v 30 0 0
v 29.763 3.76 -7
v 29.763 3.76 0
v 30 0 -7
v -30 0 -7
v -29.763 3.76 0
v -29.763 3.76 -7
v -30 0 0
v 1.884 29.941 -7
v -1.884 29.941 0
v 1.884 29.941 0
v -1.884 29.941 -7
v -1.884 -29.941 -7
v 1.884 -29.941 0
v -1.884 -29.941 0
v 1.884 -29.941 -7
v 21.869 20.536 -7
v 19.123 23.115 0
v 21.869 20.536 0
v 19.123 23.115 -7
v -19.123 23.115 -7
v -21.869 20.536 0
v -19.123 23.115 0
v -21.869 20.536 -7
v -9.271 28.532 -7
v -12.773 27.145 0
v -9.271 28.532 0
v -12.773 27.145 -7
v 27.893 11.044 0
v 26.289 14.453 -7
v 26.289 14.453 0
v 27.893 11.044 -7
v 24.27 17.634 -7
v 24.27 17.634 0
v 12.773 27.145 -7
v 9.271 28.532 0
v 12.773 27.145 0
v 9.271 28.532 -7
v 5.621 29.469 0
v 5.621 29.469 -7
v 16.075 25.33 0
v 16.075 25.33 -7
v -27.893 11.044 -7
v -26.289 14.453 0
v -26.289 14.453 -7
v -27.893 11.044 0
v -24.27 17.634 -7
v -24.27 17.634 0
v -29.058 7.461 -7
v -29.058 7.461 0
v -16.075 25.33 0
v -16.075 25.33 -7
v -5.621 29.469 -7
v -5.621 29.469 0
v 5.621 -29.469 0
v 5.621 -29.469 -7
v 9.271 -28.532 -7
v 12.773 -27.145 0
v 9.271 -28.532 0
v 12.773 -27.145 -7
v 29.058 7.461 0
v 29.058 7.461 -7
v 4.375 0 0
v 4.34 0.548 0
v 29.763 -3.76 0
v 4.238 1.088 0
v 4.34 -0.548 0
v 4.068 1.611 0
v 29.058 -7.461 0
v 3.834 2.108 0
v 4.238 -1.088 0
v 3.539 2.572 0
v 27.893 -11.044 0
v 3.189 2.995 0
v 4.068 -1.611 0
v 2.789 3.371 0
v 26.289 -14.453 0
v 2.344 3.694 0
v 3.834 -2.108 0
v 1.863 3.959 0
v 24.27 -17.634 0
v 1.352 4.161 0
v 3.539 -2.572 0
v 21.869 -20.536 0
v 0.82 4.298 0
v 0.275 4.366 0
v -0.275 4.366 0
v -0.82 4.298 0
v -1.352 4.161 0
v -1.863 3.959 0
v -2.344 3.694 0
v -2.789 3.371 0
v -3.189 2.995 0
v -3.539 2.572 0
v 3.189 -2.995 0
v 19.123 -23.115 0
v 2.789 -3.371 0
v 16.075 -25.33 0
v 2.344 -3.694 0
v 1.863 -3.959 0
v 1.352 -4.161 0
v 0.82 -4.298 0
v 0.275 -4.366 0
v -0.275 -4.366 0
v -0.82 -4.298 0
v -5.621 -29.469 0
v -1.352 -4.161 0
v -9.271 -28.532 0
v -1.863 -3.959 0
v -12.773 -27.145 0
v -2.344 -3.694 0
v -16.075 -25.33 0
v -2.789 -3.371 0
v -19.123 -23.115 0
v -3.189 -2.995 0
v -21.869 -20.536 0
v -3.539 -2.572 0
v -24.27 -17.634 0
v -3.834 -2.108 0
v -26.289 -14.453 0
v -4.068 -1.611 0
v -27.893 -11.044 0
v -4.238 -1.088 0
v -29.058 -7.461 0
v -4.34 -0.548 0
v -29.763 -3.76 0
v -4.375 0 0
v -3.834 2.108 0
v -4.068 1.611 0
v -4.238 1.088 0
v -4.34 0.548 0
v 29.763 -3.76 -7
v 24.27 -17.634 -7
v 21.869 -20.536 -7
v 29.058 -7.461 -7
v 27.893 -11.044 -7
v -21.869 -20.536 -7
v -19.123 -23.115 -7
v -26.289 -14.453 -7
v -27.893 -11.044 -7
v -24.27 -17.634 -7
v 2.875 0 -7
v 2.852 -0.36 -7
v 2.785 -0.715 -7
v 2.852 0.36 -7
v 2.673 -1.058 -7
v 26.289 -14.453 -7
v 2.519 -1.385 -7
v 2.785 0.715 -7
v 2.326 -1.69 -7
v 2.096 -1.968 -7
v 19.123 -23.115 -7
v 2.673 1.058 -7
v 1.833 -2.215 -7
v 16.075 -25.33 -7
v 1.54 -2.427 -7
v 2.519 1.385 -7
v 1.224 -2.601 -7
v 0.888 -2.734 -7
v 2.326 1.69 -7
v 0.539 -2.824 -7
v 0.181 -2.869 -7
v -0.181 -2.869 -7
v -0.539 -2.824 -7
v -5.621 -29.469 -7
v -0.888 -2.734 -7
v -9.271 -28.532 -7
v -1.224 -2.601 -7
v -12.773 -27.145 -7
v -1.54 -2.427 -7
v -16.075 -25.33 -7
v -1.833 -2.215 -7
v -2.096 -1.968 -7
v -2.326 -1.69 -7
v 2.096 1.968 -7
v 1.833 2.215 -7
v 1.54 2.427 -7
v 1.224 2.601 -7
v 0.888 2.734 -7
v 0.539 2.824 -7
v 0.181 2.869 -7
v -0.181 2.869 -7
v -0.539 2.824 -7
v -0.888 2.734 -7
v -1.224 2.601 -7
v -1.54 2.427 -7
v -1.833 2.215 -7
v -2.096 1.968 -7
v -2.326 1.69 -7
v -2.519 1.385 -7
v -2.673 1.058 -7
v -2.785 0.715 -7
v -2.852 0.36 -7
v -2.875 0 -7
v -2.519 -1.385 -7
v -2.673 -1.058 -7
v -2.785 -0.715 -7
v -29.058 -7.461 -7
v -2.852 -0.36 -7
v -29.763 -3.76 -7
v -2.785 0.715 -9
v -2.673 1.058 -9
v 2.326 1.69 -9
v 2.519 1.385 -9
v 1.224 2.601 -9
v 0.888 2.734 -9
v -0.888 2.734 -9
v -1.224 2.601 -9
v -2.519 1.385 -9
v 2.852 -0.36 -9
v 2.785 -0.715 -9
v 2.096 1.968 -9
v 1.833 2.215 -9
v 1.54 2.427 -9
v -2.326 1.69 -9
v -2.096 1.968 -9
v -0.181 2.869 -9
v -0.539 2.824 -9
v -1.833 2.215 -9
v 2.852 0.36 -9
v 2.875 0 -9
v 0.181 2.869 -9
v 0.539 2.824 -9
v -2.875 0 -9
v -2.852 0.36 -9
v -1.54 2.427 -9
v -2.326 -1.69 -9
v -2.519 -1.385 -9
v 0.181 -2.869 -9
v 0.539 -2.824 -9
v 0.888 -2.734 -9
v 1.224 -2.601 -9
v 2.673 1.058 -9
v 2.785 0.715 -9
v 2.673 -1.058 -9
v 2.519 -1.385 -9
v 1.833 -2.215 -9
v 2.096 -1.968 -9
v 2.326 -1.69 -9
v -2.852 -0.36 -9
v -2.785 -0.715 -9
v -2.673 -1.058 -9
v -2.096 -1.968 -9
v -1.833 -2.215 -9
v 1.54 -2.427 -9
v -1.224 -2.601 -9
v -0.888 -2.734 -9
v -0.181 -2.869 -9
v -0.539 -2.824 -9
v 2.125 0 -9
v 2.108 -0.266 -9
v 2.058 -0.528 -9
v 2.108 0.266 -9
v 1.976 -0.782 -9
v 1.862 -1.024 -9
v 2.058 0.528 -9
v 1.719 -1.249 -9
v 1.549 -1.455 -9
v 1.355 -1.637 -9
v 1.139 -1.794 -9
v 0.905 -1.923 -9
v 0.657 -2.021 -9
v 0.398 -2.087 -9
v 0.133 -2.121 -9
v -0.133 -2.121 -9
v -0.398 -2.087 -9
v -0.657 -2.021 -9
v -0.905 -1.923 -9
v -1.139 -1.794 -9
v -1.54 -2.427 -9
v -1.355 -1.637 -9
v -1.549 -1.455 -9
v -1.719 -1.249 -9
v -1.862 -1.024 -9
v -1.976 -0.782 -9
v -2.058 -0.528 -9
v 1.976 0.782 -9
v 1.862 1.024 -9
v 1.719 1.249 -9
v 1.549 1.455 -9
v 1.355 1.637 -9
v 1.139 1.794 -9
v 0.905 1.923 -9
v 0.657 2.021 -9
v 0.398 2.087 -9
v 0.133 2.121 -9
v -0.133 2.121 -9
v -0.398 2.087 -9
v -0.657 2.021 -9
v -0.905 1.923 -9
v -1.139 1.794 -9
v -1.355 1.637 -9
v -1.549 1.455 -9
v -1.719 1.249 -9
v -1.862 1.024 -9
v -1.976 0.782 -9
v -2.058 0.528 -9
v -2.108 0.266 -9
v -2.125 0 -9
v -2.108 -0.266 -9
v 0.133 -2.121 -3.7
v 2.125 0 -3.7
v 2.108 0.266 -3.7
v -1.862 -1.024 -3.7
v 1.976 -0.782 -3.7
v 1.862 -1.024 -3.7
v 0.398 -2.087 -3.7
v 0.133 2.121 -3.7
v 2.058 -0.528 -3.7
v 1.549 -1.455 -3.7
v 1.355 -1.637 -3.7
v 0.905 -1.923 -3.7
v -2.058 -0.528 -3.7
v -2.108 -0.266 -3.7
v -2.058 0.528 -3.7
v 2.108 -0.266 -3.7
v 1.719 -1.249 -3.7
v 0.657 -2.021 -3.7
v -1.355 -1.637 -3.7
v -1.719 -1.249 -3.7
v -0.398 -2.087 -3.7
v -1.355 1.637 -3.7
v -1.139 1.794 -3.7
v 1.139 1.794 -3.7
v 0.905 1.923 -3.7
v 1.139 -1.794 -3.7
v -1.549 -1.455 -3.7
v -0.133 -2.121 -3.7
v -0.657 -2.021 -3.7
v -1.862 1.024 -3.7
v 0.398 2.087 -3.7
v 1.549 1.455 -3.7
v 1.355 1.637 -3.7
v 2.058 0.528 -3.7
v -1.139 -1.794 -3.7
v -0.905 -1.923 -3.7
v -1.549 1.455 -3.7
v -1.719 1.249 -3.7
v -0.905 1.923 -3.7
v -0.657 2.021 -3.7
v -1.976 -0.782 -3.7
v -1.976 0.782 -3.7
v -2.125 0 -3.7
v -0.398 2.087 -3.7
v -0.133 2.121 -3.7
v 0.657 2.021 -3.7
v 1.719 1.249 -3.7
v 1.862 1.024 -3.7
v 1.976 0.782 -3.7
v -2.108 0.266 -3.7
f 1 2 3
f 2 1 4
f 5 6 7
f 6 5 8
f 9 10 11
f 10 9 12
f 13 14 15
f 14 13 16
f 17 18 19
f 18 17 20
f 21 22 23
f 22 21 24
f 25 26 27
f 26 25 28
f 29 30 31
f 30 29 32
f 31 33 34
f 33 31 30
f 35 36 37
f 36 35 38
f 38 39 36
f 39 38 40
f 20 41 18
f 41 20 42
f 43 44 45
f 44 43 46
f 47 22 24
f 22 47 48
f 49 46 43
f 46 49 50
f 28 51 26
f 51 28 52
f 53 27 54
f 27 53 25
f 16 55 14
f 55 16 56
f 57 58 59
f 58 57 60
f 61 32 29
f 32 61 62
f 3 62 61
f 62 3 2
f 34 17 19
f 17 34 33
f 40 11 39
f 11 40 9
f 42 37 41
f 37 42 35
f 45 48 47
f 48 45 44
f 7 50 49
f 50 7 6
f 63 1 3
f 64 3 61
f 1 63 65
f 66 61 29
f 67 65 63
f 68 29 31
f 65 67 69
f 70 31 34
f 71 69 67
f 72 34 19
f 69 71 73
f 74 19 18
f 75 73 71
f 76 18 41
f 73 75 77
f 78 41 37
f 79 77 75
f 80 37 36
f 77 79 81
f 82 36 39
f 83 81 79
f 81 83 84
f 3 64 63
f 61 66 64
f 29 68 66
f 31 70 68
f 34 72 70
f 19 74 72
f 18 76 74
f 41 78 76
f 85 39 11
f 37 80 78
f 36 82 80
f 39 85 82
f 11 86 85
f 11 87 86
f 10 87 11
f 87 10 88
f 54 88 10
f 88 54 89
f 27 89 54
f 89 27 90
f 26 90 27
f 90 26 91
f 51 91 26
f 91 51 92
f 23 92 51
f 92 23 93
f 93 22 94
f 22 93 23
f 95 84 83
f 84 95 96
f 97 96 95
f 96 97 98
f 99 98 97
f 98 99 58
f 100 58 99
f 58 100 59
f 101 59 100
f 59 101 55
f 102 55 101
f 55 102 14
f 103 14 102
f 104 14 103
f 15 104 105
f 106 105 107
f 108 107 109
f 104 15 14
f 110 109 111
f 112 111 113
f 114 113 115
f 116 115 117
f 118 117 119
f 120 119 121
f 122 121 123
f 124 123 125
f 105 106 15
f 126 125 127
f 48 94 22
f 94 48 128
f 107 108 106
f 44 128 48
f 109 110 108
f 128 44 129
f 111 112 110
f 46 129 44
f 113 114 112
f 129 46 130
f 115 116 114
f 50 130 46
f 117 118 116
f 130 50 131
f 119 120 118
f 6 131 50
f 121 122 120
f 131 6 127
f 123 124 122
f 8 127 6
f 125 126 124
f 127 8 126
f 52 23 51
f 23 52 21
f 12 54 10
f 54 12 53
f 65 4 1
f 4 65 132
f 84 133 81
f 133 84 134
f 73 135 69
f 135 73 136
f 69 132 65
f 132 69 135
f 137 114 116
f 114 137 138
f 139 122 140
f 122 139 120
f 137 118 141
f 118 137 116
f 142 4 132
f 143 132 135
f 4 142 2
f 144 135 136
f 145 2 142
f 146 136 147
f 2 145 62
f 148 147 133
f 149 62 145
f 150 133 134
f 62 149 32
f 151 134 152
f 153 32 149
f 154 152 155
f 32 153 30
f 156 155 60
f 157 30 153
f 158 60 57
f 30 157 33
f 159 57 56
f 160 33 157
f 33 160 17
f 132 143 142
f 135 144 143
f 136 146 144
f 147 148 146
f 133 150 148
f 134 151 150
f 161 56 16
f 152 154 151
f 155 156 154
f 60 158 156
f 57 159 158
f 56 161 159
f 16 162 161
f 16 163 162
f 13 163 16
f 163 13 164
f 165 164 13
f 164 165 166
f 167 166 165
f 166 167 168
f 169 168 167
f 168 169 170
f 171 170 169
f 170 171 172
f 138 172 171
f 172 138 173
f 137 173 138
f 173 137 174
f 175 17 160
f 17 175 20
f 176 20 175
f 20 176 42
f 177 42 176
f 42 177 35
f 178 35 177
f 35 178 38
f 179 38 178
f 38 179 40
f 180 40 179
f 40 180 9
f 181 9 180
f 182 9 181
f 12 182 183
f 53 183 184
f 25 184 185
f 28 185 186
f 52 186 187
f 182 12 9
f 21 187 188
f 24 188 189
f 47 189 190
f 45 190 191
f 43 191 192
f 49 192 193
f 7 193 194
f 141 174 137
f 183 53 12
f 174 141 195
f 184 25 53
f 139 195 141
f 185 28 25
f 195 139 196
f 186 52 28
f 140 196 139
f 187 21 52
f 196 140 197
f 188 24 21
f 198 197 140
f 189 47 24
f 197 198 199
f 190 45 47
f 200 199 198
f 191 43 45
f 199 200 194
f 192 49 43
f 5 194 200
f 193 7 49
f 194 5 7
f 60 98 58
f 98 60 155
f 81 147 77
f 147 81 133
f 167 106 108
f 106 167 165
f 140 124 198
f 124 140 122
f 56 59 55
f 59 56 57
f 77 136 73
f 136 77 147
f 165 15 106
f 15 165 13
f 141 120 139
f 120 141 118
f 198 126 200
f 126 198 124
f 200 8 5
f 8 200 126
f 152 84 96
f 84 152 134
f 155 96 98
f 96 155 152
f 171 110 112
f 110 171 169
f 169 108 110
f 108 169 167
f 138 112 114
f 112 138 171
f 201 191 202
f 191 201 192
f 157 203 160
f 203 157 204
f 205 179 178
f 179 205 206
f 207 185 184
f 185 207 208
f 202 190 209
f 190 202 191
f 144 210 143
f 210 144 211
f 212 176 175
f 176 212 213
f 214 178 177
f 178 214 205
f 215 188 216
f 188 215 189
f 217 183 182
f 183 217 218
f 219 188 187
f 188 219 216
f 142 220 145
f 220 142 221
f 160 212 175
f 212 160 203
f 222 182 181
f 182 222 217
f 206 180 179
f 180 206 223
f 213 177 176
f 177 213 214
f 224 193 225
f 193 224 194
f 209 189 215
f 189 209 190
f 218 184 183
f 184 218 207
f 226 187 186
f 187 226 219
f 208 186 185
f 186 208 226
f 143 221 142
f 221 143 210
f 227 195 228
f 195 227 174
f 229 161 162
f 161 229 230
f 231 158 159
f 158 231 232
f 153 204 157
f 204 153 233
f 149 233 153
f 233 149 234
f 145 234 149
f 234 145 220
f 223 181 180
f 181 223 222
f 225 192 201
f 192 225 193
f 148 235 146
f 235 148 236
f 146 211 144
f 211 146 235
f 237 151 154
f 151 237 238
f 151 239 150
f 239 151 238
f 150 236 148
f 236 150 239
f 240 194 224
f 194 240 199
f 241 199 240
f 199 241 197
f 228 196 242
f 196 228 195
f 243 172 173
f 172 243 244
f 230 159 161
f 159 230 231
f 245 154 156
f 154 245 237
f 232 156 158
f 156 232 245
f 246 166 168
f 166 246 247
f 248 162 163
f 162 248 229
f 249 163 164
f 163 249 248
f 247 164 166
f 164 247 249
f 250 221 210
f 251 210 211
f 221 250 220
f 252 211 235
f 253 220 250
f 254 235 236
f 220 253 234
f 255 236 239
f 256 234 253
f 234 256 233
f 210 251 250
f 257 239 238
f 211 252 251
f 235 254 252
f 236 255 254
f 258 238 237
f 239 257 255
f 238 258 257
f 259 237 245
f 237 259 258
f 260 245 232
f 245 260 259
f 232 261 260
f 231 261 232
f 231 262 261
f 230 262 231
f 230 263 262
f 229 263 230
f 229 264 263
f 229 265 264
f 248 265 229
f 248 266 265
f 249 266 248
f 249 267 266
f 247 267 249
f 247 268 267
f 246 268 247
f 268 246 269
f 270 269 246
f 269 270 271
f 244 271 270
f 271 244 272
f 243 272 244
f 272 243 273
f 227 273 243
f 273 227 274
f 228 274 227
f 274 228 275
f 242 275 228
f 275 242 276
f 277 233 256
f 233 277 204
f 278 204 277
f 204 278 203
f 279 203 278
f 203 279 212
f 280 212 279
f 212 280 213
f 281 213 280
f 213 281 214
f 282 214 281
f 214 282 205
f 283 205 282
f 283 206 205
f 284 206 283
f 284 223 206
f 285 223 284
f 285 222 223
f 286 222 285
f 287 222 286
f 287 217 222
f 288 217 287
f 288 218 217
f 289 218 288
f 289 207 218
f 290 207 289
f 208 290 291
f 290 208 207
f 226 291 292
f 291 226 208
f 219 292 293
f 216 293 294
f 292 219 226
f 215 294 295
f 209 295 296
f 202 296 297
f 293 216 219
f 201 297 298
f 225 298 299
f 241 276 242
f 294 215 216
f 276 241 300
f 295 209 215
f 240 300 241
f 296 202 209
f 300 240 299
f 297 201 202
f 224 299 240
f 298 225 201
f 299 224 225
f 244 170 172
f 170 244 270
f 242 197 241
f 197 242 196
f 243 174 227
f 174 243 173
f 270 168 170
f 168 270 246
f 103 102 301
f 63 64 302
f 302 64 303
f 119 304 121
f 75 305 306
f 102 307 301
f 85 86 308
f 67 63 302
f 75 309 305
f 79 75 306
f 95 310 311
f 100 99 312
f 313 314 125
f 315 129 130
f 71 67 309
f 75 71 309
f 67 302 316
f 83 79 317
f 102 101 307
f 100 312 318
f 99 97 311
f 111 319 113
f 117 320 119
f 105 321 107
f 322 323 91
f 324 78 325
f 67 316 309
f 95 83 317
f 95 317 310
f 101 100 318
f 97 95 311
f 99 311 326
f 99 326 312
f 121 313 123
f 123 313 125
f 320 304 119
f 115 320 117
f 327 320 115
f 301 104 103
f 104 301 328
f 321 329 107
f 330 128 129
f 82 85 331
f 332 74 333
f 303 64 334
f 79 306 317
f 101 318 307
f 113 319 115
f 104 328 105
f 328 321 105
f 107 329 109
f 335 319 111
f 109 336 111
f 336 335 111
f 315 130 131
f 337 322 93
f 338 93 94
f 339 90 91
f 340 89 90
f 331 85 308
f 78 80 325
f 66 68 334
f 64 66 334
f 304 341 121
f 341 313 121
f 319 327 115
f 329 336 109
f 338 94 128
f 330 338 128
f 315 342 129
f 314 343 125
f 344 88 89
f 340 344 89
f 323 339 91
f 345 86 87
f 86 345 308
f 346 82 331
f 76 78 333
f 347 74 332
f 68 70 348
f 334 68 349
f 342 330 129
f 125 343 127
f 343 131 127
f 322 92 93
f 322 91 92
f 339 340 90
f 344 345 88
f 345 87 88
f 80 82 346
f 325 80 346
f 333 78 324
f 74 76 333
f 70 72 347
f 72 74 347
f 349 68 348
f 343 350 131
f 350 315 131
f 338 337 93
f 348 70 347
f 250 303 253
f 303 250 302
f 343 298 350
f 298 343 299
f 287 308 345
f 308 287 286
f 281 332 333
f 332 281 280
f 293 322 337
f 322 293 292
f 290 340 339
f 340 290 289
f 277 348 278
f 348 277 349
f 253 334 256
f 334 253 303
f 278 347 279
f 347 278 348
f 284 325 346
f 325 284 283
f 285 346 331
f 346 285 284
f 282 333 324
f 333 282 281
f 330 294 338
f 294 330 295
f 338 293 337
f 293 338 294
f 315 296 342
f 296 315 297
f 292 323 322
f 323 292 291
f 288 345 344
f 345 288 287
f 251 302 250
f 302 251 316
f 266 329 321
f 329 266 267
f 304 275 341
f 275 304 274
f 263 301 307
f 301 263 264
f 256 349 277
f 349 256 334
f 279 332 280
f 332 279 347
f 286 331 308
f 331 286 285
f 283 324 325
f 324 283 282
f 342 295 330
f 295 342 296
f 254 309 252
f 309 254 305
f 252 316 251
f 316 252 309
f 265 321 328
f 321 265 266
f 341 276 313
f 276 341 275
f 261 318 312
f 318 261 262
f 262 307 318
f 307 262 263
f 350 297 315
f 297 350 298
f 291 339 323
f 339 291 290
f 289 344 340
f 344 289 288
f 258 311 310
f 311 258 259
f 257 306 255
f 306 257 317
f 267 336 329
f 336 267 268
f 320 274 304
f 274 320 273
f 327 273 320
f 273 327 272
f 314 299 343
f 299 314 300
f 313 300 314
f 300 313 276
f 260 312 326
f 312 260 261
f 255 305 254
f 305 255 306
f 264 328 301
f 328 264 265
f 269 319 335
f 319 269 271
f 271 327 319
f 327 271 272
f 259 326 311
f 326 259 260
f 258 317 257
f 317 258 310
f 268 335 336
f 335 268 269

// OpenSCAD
$fn = 50;


difference() {
	union() {
		translate(v = [0, 0, -7.0000000000]) {
			cylinder(h = 7, r = 30.0000000000);
		}
		translate(v = [0, 0, -9.0000000000]) {
			cylinder(h = 9, r = 2.8750000000);
		}
	}
	union() {
		translate(v = [0, 0, 0]) {
			rotate(a = [0, 0, 0]) {
				difference() {
					union() {
						#translate(v = [0, 0, -9.0000000000]) {
							cylinder(h = 9, r = 2.0000000000);
						}
						#translate(v = [0, 0, -3.7000000000]) {
							cylinder(h = 3.7000000000, r1 = 2.1250000000, r2 = 4.3750000000);
						}
						#translate(v = [0, 0, -9.0000000000]) {
							cylinder(h = 9, r = 2.1250000000);
						}
						#translate(v = [0, 0, -9.0000000000]) {
							cylinder(h = 9, r = 2.0000000000);
						}
					}
					union();
				}
			}
		}
	}
}
